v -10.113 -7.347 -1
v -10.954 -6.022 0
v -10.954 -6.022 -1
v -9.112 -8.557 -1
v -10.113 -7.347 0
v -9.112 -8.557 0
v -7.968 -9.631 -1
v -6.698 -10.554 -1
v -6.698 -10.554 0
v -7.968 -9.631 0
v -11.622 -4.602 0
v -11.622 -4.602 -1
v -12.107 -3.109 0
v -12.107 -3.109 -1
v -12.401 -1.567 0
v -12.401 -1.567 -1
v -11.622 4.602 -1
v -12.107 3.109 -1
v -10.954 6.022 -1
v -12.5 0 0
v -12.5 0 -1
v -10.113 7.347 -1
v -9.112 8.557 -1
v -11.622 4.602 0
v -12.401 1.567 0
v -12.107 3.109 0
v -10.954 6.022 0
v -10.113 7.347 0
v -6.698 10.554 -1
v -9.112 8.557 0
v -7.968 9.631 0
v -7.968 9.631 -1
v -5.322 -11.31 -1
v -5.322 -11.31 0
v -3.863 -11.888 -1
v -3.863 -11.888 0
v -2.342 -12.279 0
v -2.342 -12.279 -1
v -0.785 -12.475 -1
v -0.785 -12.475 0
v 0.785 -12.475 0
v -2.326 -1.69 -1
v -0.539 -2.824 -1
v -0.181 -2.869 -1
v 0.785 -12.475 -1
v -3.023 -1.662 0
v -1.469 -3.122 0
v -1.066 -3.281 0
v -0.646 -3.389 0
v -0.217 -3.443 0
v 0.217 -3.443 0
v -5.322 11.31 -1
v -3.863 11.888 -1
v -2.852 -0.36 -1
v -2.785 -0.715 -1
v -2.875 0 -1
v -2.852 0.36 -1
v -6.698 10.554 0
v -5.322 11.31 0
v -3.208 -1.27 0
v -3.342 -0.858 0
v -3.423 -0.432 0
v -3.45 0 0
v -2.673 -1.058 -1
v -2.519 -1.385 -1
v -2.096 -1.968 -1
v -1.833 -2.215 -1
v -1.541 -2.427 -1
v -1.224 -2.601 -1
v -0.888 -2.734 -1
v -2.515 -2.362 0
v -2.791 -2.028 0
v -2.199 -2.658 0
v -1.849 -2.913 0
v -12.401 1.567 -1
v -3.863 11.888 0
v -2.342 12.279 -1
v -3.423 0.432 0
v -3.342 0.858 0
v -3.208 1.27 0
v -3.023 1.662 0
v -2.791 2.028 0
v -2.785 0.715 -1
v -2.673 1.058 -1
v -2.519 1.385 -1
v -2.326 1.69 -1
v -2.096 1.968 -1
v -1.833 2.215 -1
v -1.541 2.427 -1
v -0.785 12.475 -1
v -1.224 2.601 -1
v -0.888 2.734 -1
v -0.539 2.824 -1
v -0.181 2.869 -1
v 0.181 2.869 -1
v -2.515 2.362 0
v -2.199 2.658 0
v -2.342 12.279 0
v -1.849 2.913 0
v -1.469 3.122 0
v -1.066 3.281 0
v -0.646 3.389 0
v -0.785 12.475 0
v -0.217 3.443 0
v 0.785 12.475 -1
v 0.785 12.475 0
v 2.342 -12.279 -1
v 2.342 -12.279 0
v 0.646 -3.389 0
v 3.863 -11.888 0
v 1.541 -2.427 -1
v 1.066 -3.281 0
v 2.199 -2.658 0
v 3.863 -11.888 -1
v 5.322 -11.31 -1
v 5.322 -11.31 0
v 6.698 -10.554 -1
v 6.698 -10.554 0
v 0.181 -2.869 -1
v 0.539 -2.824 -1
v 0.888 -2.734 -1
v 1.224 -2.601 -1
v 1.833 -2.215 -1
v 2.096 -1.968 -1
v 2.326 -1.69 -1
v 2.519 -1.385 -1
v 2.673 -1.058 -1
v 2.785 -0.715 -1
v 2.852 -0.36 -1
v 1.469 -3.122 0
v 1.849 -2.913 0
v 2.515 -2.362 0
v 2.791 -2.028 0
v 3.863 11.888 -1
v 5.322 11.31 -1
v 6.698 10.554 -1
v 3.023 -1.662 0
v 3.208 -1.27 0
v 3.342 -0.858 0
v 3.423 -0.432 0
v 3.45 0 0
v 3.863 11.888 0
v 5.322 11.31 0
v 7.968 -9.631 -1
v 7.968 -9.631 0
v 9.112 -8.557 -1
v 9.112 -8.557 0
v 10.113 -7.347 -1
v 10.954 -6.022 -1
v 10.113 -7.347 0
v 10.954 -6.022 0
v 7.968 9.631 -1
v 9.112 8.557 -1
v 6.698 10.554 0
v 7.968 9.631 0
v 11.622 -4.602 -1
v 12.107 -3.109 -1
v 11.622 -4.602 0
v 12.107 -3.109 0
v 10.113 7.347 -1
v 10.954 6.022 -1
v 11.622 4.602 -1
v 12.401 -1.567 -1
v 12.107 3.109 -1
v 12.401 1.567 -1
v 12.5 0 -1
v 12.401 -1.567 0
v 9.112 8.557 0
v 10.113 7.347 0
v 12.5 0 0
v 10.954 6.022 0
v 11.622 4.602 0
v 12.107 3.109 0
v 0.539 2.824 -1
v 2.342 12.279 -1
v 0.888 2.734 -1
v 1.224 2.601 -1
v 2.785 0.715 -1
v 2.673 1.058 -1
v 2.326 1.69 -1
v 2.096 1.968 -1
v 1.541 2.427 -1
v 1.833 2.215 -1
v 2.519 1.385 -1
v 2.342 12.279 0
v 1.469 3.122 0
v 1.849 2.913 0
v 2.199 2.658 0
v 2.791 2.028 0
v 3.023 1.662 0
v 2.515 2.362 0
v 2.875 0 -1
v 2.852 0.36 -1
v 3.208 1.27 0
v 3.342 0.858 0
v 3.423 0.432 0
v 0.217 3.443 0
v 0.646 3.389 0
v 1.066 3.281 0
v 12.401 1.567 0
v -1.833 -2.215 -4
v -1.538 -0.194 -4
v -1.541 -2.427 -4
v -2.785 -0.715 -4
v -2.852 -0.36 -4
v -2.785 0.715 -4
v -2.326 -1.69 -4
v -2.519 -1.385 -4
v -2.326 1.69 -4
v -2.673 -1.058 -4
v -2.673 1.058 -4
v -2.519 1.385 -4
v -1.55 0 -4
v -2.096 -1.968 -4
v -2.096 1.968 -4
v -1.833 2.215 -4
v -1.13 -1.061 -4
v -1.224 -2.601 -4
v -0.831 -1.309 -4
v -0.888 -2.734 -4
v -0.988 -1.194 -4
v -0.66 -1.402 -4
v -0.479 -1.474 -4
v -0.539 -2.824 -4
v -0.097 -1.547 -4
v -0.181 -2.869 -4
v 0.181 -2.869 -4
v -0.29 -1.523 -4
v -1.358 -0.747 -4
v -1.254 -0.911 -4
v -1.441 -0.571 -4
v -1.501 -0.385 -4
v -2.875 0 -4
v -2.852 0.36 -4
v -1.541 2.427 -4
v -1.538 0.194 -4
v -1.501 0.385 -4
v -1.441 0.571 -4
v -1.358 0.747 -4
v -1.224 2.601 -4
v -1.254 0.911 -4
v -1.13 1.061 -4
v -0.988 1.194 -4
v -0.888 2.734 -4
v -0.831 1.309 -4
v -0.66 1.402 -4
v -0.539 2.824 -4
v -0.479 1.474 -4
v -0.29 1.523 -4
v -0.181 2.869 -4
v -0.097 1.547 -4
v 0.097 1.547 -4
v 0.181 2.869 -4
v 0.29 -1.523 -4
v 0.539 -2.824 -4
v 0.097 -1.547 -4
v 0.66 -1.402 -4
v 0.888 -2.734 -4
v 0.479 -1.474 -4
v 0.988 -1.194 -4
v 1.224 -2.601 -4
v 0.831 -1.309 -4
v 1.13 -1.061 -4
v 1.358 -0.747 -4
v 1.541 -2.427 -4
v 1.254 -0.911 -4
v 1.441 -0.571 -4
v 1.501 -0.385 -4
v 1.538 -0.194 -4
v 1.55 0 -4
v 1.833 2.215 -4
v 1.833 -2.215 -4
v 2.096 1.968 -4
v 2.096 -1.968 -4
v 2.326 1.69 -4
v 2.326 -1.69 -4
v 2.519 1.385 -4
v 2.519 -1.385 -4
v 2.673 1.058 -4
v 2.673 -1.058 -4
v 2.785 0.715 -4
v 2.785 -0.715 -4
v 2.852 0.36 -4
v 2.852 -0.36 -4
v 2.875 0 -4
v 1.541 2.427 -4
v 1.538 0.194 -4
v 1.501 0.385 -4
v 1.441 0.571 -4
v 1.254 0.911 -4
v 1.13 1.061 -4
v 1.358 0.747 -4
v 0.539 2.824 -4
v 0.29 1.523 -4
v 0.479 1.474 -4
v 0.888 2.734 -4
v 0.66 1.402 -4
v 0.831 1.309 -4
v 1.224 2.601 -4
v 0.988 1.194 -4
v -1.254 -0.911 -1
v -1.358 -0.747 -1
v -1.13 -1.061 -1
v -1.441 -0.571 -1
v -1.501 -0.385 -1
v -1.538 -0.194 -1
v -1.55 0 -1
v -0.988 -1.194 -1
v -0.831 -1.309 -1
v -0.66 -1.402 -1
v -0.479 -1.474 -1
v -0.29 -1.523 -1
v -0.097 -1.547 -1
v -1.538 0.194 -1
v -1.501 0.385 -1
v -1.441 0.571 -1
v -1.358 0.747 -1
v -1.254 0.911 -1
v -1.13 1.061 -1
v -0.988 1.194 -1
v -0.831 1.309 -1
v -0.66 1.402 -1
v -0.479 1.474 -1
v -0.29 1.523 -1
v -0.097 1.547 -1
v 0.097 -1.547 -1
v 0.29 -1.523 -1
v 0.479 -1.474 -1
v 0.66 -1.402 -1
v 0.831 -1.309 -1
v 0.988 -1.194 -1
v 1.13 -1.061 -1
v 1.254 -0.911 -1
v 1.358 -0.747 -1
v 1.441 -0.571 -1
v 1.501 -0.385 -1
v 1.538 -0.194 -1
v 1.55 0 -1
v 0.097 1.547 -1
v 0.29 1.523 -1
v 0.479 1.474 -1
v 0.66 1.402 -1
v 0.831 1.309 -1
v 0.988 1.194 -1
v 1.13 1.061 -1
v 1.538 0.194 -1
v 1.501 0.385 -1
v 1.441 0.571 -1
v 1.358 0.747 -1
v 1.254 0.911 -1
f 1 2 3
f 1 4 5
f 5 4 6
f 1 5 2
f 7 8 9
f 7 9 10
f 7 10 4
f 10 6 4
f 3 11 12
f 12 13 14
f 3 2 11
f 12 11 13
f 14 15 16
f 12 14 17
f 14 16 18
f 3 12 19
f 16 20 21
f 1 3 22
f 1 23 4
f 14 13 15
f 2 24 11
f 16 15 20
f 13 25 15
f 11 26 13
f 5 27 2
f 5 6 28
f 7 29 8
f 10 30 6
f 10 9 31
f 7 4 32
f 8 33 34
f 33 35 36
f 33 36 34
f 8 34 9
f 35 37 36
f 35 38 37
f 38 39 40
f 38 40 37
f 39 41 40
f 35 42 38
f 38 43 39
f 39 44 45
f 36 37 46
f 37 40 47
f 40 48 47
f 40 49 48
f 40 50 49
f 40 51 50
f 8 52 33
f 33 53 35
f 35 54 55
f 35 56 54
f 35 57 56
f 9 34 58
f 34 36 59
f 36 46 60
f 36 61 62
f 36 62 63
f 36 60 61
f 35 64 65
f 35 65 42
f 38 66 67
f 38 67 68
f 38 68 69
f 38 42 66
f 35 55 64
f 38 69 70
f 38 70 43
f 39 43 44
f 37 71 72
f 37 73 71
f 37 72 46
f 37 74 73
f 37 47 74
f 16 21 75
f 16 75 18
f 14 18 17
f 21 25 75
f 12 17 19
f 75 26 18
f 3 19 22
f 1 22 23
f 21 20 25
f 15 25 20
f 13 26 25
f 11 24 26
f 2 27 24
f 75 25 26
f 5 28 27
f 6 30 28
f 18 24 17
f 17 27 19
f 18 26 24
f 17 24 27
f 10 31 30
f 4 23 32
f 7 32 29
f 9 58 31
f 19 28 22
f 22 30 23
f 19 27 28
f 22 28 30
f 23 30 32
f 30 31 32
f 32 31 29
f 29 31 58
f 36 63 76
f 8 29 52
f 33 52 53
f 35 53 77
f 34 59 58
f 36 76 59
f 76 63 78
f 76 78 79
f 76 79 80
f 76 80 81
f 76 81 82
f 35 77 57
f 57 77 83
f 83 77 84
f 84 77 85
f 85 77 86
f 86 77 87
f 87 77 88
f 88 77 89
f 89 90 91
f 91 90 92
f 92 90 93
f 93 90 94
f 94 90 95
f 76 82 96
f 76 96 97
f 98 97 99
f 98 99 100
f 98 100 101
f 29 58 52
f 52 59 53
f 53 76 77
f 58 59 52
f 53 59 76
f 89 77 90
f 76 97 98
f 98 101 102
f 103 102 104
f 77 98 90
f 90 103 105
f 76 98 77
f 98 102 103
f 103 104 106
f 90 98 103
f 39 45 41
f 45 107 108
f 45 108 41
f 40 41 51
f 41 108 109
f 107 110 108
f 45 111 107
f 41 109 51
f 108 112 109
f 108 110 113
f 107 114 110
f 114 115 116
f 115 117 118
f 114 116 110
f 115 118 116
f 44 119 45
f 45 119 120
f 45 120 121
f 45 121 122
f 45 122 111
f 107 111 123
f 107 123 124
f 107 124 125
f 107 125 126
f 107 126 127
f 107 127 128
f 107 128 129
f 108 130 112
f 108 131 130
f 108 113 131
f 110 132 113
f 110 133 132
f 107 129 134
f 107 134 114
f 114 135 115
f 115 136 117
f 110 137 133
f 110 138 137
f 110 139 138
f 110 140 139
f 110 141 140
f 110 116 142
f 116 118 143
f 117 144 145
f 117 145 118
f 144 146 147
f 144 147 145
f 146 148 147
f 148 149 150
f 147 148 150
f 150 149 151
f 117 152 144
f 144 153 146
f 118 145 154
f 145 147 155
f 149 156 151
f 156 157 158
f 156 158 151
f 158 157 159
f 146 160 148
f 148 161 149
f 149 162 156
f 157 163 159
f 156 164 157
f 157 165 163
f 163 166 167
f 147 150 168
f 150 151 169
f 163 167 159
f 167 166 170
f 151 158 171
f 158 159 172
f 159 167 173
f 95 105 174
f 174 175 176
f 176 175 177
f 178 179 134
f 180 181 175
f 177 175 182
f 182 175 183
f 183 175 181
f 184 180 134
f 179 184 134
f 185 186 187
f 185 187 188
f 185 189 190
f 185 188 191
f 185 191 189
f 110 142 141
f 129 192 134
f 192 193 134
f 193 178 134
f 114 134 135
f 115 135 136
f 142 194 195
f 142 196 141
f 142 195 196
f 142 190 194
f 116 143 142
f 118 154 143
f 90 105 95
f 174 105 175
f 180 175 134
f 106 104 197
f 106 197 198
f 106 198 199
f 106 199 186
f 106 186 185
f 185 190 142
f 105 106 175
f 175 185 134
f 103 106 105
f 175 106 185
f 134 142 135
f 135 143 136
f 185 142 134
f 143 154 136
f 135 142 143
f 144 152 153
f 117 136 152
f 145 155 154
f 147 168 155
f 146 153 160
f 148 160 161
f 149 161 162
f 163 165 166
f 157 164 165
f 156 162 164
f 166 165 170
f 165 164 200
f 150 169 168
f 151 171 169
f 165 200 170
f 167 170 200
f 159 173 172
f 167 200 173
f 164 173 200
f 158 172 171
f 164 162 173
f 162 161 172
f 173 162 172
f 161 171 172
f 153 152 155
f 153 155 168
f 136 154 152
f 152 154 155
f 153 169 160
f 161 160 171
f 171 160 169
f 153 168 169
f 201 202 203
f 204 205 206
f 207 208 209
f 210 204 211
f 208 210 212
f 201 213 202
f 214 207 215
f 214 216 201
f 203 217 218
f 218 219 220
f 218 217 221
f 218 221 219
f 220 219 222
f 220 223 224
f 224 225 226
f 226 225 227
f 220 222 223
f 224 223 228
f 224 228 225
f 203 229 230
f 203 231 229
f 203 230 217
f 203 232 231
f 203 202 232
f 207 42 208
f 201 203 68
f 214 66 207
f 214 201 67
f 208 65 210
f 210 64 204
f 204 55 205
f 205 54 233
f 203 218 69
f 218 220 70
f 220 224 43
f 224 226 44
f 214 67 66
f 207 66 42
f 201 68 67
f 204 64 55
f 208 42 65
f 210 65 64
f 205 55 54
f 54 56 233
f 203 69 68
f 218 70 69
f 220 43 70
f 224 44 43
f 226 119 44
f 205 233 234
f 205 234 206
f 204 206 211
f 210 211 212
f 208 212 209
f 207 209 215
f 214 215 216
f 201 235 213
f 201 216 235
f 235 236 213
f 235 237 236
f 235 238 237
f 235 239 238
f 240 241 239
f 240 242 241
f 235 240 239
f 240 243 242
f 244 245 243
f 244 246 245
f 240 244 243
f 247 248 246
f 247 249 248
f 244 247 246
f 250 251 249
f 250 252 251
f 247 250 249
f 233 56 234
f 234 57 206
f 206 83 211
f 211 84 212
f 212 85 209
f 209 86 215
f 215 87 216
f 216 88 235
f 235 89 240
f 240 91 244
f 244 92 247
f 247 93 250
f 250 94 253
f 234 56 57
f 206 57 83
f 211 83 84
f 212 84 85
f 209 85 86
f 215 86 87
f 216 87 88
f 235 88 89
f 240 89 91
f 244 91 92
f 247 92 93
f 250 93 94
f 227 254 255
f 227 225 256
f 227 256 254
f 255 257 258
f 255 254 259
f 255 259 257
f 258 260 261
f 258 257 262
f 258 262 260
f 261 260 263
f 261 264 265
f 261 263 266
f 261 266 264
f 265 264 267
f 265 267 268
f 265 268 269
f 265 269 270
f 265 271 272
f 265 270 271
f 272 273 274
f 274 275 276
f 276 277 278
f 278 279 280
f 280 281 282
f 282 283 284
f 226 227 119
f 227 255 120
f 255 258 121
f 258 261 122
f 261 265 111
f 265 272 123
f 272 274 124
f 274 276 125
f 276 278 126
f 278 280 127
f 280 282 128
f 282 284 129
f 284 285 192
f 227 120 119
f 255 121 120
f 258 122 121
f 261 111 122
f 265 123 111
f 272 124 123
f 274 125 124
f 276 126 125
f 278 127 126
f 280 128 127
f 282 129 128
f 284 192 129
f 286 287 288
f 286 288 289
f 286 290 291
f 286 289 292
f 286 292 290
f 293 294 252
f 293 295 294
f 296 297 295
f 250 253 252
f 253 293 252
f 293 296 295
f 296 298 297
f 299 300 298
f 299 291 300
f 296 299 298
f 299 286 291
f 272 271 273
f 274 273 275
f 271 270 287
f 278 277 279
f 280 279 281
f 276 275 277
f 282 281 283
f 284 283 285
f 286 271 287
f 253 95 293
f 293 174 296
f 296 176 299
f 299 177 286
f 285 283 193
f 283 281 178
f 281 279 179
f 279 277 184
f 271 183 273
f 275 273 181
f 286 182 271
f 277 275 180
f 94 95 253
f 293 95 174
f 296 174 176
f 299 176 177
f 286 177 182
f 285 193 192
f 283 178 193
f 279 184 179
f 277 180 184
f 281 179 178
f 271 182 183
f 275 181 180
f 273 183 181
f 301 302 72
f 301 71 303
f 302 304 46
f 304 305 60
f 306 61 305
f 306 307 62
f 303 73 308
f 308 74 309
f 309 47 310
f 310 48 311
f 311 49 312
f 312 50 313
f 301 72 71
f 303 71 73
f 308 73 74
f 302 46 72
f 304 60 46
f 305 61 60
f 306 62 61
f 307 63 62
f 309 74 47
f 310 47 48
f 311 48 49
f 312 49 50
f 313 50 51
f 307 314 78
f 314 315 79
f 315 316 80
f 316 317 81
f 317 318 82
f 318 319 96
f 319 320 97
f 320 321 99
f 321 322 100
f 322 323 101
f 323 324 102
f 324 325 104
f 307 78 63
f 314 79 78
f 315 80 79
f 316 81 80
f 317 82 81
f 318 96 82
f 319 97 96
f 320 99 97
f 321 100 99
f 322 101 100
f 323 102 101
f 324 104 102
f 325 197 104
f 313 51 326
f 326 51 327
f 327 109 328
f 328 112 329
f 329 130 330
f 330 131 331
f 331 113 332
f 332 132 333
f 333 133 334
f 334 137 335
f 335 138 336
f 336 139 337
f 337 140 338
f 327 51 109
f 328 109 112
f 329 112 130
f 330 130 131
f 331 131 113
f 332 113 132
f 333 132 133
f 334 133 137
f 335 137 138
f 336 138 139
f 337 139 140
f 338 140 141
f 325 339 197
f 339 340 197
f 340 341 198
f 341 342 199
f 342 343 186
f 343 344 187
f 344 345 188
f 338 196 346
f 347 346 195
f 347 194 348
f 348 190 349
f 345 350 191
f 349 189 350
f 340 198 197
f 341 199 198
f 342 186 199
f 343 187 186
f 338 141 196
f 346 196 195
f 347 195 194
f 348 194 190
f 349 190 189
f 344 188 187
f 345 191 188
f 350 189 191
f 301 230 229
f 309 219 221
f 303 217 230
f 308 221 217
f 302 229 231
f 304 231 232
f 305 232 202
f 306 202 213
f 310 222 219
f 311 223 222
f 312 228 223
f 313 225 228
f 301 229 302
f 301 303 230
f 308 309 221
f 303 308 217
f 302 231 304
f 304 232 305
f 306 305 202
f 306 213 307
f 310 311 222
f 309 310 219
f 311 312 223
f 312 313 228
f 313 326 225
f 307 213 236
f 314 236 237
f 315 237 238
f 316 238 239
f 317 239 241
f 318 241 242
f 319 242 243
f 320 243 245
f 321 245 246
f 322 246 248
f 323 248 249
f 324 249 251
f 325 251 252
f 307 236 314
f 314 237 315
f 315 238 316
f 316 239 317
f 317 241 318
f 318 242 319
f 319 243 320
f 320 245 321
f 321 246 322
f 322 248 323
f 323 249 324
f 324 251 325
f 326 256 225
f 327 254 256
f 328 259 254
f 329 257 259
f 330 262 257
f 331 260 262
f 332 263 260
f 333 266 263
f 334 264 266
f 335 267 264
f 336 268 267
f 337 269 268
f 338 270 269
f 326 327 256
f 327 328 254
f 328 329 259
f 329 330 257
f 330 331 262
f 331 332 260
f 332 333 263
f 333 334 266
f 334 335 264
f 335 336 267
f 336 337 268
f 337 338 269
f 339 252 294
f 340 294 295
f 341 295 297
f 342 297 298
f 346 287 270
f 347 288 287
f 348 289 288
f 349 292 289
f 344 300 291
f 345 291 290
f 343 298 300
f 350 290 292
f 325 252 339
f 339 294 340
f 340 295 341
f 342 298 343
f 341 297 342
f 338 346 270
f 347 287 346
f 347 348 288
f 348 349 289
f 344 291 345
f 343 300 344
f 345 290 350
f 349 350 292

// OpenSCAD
$fn = 50;

difference() {
	union() {
		translate(v = [0, 0, -1.0]) {
			cylinder(h = 1.0, r = 12.5);
		}
		#translate(v = [0, 0, -4.0]) {
			cylinder(h = 4.0, r = 2.875);
		}
	}
	union() {
		translate(v = [0, 0, 0]) {
			rotate(a = [0, 0, 0]) {
				difference() {
					union() {
						translate(v = [0, 0, -4.0]) {
							cylinder(h = 4.0, r = 1.25);
						}
						translate(v = [0, 0, -1.0]) {
							cylinder(h = 1.0, r1 = 1.55, r2 = 3.45);
						}
						translate(v = [0, 0, -4.0]) {
							cylinder(h = 4.0, r = 1.55);
						}
						translate(v = [0, 0, -4.0]) {
							cylinder(h = 4.0, r = 1.25);
						}
					}
					union();
				}
			}
		}
	}
}
